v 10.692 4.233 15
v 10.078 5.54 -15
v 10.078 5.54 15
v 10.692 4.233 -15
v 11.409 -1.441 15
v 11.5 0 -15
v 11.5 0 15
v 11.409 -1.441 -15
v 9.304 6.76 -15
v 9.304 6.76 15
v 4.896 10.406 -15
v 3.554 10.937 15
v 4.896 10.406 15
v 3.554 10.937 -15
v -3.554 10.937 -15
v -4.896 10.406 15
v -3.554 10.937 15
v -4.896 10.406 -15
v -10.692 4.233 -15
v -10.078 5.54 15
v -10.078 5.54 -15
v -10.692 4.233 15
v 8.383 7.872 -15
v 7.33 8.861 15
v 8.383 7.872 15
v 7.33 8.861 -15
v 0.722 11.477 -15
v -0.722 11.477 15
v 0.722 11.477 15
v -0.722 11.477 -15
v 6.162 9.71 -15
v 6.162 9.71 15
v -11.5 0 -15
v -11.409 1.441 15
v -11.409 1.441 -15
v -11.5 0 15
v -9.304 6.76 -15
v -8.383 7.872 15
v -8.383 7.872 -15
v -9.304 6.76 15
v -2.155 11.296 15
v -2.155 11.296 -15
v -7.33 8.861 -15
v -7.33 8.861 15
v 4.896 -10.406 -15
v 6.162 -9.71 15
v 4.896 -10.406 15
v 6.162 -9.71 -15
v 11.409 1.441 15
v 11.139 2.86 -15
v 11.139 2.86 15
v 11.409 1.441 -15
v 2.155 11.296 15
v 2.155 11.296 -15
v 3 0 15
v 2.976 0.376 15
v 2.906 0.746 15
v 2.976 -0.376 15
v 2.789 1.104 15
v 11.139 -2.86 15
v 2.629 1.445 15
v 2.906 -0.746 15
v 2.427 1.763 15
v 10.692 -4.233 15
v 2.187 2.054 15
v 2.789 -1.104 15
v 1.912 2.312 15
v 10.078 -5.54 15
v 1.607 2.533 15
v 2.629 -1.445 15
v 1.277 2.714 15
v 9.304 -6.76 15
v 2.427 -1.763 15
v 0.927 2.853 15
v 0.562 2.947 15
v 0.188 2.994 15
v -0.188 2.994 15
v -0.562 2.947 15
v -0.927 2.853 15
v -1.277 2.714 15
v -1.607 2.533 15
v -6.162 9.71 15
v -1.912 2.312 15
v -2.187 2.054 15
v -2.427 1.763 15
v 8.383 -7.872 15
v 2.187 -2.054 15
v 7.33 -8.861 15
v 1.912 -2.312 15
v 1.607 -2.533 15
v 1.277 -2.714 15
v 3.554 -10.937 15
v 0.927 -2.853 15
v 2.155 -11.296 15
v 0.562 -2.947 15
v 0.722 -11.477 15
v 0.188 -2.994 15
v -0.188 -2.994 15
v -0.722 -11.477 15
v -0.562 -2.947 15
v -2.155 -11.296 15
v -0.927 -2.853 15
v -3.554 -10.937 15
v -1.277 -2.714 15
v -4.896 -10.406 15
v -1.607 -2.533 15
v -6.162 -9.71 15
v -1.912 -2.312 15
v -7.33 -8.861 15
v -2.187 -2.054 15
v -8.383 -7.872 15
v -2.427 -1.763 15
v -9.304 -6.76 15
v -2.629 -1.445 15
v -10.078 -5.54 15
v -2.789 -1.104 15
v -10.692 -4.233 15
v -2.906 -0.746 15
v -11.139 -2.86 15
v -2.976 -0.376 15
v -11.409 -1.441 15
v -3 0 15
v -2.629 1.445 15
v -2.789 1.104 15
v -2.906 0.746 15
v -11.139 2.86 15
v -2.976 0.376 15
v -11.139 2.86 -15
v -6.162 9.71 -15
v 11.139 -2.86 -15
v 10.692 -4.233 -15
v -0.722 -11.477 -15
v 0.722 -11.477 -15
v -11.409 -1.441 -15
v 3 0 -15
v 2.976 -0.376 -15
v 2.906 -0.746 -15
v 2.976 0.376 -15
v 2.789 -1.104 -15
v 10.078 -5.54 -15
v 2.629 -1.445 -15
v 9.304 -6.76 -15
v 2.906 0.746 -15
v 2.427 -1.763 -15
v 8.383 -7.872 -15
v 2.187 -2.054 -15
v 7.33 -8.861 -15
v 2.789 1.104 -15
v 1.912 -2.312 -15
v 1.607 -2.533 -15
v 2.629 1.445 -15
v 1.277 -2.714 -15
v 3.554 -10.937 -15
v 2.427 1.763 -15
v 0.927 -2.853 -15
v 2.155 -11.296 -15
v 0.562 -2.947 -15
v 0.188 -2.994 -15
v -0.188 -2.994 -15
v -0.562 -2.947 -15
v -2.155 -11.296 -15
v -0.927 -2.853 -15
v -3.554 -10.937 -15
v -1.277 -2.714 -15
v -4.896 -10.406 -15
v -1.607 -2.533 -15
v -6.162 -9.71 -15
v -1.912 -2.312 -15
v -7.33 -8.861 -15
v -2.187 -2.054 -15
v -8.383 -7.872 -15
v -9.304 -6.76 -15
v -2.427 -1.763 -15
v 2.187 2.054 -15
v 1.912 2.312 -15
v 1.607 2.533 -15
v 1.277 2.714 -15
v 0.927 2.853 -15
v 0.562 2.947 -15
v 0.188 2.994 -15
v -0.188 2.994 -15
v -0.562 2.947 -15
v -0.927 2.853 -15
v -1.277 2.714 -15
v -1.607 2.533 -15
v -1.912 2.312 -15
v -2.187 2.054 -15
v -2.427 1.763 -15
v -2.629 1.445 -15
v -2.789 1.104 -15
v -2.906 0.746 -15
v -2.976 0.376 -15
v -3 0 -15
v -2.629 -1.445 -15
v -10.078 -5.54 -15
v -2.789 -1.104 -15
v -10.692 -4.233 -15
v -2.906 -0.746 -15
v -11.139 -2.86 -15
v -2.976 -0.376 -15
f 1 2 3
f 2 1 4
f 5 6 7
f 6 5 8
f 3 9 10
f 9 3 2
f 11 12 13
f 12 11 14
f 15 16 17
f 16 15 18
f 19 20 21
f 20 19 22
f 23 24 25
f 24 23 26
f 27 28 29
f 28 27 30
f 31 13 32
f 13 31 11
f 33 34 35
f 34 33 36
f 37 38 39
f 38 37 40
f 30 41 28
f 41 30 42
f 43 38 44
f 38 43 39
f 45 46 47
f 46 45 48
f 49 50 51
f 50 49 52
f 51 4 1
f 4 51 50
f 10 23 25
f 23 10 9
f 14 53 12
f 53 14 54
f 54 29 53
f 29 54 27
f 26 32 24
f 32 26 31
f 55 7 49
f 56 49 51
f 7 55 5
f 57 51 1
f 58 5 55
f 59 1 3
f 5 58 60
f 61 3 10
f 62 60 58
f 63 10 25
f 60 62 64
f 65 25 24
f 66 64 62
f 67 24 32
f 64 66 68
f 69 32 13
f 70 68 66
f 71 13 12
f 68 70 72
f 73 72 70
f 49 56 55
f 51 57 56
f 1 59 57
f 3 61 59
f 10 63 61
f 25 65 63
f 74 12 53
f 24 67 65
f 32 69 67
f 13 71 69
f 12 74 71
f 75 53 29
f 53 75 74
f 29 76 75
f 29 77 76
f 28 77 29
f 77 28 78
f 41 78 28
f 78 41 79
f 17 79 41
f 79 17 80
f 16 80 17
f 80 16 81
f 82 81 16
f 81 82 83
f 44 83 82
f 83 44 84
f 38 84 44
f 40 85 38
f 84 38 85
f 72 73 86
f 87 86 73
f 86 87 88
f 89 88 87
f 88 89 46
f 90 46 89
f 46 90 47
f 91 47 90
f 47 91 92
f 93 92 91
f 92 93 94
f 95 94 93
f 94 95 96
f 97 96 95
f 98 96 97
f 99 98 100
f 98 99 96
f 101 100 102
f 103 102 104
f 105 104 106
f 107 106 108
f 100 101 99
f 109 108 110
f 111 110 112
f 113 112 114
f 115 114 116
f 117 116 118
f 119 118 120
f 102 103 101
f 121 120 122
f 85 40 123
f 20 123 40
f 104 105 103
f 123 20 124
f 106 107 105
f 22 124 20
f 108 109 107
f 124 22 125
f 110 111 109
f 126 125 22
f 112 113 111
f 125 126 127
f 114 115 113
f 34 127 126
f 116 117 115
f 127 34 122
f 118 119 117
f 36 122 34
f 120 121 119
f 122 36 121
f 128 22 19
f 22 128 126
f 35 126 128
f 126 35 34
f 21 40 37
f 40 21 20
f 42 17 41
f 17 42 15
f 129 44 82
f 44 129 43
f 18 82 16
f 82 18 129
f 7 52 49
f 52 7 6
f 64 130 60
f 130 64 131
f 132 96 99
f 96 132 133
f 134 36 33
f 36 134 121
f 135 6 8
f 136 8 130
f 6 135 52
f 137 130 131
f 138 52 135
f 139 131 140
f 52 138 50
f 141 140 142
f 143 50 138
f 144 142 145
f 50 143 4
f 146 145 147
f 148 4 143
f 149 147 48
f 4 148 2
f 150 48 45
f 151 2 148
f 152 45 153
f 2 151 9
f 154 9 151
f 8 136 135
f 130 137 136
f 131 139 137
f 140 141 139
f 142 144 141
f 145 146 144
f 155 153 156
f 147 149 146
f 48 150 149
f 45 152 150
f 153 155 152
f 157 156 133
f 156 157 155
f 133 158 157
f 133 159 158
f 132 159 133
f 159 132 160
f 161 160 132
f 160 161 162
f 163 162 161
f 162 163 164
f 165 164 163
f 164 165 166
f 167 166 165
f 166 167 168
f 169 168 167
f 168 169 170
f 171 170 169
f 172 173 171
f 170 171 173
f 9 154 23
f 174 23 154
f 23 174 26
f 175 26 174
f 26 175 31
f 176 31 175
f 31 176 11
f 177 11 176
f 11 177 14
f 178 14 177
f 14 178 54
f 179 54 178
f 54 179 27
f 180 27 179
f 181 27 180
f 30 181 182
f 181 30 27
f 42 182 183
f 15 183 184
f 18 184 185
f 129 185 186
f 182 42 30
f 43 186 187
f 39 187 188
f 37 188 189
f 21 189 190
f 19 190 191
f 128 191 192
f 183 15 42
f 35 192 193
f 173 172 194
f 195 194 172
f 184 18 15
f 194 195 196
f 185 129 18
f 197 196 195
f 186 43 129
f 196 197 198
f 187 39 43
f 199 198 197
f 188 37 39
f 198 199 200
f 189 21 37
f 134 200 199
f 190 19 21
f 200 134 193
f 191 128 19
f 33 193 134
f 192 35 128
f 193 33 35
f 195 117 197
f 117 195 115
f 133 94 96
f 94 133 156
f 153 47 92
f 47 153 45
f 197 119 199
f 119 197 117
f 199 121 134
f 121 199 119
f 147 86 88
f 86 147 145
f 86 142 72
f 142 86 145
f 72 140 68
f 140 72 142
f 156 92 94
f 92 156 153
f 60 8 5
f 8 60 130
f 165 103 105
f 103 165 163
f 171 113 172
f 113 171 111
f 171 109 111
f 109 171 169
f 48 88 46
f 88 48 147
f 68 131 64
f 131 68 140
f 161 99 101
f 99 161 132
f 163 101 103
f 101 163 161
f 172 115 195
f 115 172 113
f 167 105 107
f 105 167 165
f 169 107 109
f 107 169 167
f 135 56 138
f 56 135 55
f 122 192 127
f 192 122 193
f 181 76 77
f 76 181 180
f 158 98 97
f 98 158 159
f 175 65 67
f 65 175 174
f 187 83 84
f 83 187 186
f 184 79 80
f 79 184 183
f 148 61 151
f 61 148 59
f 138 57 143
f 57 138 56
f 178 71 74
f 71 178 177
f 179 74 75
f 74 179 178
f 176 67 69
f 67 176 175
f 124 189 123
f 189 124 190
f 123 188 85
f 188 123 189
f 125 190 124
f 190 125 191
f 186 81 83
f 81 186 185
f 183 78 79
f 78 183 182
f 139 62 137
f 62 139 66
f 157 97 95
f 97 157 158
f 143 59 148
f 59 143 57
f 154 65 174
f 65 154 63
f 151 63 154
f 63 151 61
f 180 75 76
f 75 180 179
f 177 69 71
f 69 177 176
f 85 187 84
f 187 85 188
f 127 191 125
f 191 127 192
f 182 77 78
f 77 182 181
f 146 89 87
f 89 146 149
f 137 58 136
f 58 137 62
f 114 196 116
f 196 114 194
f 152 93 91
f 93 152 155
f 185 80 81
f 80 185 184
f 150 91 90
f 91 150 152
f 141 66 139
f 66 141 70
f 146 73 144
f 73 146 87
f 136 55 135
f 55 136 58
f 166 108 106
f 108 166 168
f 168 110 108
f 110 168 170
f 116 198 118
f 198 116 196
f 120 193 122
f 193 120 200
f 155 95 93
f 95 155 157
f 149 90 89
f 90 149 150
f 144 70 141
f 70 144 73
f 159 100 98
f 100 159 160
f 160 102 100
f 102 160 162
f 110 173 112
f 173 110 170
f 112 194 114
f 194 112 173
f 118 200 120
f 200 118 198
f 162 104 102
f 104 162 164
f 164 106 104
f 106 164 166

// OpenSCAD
$fn = 50;


difference() {
	union() {
		translate(v = [0, 0, -15.0000000000]) {
			cylinder(h = 30, r = 11.5000000000);
		}
	}
	union() {
		translate(v = [0, 0, -100.0000000000]) {
			cylinder(h = 200, r = 3);
		}
	}
}
